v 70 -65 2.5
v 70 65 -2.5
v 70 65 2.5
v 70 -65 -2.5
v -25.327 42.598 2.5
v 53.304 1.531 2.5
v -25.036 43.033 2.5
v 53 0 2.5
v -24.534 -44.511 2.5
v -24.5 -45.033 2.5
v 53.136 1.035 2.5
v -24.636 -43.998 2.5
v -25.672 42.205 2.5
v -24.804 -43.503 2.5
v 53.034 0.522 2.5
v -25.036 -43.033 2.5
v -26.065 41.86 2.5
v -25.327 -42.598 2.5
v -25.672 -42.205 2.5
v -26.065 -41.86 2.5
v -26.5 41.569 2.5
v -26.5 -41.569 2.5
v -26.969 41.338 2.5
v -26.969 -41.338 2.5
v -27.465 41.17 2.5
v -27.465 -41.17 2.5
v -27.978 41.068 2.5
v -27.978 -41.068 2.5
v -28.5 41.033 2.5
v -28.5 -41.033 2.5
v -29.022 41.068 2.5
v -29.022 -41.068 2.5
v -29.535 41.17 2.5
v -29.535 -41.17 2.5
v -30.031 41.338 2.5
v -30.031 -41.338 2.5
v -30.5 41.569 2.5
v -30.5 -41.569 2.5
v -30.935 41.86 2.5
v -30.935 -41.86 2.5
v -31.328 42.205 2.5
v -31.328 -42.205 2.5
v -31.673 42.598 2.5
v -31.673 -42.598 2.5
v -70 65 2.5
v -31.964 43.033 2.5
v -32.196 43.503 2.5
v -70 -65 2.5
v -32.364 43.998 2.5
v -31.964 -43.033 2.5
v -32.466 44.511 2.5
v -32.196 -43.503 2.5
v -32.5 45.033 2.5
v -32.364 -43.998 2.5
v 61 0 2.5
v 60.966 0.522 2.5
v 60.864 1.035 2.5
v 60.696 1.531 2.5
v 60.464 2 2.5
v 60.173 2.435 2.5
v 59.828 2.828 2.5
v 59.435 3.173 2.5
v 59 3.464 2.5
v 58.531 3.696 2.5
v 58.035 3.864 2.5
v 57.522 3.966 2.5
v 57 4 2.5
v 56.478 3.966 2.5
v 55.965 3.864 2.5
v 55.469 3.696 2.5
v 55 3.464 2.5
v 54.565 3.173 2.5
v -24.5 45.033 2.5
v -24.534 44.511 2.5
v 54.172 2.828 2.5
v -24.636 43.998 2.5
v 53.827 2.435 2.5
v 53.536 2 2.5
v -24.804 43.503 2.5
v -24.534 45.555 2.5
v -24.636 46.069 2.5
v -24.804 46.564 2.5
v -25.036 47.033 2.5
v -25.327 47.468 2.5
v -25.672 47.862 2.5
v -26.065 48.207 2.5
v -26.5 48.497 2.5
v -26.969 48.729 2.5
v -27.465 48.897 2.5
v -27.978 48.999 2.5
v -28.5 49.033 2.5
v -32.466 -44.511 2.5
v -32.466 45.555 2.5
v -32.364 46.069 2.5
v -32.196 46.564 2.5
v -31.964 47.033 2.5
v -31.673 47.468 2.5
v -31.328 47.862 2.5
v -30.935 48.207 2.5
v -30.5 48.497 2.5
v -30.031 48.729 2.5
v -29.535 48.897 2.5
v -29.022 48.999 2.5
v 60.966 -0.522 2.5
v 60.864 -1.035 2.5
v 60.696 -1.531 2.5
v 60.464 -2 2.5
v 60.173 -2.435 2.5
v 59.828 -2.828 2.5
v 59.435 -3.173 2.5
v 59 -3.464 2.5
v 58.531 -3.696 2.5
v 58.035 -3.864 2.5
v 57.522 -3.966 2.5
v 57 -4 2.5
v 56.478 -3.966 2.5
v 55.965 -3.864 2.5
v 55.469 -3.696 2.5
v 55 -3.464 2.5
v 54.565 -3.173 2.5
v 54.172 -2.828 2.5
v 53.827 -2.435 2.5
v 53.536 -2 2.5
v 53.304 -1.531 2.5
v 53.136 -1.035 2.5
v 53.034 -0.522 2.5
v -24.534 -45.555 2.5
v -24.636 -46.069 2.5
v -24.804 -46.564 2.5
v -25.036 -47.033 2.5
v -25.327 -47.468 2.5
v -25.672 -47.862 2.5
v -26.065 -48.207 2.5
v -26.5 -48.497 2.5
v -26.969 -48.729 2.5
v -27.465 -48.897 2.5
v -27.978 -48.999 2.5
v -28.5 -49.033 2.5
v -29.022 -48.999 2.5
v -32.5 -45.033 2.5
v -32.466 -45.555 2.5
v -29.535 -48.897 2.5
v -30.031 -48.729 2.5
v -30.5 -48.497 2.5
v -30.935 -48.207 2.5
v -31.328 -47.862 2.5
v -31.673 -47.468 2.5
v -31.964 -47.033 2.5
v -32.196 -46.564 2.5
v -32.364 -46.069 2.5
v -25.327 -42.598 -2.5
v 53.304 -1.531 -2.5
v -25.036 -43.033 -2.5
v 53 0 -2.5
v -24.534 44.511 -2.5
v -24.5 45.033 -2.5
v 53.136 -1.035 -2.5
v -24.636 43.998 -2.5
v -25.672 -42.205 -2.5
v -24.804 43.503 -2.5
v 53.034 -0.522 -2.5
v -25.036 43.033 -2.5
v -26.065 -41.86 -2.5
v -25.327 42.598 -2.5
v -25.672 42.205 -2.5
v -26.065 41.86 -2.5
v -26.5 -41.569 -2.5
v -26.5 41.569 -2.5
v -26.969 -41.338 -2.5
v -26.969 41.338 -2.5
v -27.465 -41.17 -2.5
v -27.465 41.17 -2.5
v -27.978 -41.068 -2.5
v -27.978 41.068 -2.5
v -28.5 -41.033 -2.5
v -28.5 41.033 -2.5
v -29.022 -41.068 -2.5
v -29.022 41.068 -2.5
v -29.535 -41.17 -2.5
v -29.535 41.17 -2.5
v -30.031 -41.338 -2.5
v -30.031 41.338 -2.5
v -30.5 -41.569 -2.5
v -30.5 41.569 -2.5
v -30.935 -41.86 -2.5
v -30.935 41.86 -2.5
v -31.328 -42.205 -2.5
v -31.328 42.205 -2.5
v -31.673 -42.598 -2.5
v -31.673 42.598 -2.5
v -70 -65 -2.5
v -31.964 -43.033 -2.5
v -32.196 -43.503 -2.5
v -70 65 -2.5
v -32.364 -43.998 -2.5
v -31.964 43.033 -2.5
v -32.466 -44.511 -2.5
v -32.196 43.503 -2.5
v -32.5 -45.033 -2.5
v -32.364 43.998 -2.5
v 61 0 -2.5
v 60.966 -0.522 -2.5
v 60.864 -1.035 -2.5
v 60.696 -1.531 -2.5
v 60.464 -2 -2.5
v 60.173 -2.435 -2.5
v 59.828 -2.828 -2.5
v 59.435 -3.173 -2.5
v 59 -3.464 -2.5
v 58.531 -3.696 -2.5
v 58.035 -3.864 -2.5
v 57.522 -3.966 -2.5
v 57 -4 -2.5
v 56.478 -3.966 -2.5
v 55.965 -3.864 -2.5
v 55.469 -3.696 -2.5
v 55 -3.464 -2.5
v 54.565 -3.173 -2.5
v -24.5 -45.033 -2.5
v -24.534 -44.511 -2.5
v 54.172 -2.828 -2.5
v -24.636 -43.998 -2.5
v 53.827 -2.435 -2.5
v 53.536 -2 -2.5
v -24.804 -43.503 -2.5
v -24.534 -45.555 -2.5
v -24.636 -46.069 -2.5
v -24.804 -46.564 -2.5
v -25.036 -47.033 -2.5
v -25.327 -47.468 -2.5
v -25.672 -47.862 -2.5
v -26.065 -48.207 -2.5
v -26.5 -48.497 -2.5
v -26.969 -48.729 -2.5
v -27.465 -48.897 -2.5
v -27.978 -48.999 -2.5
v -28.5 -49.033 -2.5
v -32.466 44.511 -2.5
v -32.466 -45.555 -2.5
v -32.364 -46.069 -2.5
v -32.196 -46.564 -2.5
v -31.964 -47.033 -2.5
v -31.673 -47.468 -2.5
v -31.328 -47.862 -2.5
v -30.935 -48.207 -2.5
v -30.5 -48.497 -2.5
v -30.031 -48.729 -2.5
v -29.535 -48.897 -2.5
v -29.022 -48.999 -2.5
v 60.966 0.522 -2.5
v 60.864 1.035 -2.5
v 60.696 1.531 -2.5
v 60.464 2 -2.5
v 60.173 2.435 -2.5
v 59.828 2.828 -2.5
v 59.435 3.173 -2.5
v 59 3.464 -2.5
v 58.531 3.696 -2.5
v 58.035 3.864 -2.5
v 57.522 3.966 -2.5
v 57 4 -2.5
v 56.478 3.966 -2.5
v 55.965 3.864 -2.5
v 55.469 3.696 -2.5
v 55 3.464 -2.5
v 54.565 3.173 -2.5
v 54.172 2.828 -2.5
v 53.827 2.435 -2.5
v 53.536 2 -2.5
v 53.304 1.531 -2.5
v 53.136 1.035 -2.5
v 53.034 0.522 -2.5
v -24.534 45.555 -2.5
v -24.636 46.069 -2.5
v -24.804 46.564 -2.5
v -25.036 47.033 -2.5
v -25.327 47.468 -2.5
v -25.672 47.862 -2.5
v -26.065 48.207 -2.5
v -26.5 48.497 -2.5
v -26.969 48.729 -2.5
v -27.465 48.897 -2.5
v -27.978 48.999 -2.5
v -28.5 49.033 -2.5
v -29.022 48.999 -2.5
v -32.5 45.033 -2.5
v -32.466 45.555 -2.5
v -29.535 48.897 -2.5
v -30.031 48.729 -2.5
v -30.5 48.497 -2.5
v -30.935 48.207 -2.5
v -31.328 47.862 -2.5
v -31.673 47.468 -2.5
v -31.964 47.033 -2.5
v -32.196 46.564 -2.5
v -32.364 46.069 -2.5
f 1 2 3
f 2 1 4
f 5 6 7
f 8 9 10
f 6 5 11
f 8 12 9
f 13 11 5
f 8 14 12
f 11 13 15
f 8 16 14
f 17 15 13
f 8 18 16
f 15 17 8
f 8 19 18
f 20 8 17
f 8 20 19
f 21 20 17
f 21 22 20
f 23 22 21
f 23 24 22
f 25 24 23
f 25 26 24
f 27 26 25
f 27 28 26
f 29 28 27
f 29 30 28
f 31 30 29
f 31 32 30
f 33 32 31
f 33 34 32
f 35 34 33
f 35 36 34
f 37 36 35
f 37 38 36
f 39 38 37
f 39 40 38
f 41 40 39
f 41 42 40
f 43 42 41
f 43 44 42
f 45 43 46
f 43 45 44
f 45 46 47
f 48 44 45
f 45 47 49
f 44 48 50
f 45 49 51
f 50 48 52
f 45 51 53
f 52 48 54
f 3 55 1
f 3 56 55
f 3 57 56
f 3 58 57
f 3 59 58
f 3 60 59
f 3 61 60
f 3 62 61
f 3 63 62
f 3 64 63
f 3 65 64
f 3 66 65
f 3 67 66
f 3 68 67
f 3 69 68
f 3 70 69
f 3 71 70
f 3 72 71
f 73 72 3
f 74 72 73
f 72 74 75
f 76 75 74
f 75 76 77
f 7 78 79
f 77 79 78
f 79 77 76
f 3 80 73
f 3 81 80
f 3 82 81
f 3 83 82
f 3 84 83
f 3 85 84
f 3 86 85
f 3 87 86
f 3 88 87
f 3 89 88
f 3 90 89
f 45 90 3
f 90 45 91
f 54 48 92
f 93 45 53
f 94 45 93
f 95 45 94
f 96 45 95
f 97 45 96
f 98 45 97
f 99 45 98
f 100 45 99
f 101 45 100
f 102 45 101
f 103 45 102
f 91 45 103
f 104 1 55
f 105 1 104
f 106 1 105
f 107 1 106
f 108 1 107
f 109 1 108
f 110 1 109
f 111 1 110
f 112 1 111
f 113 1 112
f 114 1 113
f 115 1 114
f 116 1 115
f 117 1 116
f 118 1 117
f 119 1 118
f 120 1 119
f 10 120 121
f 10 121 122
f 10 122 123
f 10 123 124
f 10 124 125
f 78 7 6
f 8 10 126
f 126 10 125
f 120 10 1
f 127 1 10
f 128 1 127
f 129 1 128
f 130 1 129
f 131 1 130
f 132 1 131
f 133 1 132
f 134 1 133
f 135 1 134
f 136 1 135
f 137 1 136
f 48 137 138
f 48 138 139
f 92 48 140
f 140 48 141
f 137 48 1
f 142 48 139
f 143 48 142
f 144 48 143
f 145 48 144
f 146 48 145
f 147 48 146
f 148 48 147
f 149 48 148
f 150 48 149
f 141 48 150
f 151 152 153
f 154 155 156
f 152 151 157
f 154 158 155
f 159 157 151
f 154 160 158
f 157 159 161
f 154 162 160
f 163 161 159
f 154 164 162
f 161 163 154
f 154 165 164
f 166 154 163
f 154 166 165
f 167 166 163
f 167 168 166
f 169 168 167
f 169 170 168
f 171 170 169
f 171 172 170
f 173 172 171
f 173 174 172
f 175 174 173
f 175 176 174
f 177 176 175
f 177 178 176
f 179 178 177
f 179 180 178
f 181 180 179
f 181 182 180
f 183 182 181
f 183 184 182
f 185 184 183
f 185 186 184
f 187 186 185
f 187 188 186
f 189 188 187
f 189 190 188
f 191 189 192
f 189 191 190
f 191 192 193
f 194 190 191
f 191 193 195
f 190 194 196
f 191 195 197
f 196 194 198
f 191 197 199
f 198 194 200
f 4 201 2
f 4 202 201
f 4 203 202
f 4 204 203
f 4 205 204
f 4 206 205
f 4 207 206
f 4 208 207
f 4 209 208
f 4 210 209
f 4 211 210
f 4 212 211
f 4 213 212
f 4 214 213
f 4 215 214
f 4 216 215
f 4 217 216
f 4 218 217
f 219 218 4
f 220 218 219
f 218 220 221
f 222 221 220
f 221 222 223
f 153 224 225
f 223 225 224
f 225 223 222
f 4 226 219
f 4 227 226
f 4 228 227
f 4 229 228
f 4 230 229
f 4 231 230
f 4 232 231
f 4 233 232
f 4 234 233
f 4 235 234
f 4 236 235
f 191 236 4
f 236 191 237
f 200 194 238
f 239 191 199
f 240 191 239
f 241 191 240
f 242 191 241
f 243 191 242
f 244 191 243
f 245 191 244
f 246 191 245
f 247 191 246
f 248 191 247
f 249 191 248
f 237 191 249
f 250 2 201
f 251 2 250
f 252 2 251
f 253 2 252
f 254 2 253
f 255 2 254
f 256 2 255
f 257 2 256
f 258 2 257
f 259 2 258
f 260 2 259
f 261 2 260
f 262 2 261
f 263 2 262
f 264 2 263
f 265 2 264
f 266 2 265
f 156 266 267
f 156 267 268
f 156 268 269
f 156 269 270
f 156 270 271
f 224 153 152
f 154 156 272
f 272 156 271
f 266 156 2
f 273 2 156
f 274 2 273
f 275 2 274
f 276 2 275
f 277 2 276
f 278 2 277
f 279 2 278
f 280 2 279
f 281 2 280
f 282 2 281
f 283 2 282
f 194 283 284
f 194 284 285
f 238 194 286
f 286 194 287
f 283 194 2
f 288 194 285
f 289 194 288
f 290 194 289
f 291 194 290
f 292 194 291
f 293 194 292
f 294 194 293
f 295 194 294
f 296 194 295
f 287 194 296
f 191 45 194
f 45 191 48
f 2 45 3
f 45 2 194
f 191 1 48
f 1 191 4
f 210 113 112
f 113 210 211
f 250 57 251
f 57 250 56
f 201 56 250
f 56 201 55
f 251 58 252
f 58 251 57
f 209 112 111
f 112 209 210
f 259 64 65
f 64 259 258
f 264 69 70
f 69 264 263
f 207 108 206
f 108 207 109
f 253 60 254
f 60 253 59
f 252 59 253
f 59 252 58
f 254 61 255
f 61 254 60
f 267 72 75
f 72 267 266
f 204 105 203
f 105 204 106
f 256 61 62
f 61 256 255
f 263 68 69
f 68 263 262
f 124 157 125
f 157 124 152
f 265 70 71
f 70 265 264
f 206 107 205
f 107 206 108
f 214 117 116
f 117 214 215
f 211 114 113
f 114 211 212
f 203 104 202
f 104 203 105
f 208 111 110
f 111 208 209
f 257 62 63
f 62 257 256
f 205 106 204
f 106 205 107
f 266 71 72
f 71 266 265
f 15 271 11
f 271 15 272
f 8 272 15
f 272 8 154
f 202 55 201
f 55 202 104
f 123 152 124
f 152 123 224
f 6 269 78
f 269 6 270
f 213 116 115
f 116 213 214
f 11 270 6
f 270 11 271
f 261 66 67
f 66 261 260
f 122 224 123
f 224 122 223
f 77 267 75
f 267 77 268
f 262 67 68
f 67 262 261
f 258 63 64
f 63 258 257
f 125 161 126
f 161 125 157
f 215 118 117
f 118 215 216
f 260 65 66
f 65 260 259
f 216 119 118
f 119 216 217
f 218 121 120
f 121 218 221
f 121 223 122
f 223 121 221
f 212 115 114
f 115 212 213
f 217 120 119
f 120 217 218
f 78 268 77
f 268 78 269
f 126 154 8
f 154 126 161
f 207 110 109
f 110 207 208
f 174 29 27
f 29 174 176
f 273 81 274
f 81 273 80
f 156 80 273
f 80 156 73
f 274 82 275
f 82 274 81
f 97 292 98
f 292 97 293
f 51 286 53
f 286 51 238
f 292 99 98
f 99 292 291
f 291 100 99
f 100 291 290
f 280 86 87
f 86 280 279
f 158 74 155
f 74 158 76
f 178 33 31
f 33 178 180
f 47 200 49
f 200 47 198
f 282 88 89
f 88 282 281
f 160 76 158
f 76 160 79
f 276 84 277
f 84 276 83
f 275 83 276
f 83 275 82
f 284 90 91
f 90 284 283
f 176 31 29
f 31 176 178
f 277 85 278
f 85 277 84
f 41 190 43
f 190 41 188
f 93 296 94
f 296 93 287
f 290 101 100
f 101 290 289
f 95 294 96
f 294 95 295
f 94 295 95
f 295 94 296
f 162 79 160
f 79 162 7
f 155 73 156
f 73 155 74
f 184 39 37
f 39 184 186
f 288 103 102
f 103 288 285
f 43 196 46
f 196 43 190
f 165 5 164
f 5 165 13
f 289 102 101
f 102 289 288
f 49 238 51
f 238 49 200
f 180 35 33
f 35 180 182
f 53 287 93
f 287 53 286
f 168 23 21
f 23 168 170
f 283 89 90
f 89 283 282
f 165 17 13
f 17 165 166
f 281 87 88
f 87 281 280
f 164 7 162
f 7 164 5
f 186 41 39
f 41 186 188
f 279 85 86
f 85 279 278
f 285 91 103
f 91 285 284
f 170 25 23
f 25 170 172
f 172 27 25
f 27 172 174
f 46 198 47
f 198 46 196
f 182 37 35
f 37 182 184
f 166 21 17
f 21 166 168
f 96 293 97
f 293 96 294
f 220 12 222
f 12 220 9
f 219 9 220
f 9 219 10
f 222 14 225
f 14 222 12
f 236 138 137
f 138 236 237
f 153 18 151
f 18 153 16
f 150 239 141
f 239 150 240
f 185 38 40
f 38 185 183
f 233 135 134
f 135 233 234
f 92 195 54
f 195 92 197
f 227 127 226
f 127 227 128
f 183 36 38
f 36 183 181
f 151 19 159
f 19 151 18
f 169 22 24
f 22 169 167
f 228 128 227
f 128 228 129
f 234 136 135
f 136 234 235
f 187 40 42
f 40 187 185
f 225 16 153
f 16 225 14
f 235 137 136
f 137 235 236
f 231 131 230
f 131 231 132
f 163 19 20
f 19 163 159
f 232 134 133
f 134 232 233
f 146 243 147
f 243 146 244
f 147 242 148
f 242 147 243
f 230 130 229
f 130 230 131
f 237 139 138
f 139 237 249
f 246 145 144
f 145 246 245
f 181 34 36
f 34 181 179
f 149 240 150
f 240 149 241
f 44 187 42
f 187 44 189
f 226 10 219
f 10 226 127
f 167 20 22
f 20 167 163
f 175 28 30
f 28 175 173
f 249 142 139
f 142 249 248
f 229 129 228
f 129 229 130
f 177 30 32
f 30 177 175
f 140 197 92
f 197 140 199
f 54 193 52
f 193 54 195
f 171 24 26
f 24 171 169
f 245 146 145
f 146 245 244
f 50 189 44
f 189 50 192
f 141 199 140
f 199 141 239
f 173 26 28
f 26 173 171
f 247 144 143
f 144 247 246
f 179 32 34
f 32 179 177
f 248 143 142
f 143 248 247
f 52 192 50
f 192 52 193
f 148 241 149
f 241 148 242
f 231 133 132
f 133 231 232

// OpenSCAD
// ========================================
// a 140 x 130 x 5 mm plate with three 8 mm holes
// NeuroCAD canonical IR; dimensions are millimetres
// ========================================
$fn = 48;

difference() {
  cube(size=[140, 130, 5], center=true);
  translate([57, 0, 0]) {
    cylinder(r=4, h=7, center=true);
  }
  translate([-28.5, 45.0333209967908, 0]) {
    cylinder(r=4, h=7, center=true);
  }
  translate([-28.5, -45.0333209967908, 0]) {
    cylinder(r=4, h=7, center=true);
  }
}
